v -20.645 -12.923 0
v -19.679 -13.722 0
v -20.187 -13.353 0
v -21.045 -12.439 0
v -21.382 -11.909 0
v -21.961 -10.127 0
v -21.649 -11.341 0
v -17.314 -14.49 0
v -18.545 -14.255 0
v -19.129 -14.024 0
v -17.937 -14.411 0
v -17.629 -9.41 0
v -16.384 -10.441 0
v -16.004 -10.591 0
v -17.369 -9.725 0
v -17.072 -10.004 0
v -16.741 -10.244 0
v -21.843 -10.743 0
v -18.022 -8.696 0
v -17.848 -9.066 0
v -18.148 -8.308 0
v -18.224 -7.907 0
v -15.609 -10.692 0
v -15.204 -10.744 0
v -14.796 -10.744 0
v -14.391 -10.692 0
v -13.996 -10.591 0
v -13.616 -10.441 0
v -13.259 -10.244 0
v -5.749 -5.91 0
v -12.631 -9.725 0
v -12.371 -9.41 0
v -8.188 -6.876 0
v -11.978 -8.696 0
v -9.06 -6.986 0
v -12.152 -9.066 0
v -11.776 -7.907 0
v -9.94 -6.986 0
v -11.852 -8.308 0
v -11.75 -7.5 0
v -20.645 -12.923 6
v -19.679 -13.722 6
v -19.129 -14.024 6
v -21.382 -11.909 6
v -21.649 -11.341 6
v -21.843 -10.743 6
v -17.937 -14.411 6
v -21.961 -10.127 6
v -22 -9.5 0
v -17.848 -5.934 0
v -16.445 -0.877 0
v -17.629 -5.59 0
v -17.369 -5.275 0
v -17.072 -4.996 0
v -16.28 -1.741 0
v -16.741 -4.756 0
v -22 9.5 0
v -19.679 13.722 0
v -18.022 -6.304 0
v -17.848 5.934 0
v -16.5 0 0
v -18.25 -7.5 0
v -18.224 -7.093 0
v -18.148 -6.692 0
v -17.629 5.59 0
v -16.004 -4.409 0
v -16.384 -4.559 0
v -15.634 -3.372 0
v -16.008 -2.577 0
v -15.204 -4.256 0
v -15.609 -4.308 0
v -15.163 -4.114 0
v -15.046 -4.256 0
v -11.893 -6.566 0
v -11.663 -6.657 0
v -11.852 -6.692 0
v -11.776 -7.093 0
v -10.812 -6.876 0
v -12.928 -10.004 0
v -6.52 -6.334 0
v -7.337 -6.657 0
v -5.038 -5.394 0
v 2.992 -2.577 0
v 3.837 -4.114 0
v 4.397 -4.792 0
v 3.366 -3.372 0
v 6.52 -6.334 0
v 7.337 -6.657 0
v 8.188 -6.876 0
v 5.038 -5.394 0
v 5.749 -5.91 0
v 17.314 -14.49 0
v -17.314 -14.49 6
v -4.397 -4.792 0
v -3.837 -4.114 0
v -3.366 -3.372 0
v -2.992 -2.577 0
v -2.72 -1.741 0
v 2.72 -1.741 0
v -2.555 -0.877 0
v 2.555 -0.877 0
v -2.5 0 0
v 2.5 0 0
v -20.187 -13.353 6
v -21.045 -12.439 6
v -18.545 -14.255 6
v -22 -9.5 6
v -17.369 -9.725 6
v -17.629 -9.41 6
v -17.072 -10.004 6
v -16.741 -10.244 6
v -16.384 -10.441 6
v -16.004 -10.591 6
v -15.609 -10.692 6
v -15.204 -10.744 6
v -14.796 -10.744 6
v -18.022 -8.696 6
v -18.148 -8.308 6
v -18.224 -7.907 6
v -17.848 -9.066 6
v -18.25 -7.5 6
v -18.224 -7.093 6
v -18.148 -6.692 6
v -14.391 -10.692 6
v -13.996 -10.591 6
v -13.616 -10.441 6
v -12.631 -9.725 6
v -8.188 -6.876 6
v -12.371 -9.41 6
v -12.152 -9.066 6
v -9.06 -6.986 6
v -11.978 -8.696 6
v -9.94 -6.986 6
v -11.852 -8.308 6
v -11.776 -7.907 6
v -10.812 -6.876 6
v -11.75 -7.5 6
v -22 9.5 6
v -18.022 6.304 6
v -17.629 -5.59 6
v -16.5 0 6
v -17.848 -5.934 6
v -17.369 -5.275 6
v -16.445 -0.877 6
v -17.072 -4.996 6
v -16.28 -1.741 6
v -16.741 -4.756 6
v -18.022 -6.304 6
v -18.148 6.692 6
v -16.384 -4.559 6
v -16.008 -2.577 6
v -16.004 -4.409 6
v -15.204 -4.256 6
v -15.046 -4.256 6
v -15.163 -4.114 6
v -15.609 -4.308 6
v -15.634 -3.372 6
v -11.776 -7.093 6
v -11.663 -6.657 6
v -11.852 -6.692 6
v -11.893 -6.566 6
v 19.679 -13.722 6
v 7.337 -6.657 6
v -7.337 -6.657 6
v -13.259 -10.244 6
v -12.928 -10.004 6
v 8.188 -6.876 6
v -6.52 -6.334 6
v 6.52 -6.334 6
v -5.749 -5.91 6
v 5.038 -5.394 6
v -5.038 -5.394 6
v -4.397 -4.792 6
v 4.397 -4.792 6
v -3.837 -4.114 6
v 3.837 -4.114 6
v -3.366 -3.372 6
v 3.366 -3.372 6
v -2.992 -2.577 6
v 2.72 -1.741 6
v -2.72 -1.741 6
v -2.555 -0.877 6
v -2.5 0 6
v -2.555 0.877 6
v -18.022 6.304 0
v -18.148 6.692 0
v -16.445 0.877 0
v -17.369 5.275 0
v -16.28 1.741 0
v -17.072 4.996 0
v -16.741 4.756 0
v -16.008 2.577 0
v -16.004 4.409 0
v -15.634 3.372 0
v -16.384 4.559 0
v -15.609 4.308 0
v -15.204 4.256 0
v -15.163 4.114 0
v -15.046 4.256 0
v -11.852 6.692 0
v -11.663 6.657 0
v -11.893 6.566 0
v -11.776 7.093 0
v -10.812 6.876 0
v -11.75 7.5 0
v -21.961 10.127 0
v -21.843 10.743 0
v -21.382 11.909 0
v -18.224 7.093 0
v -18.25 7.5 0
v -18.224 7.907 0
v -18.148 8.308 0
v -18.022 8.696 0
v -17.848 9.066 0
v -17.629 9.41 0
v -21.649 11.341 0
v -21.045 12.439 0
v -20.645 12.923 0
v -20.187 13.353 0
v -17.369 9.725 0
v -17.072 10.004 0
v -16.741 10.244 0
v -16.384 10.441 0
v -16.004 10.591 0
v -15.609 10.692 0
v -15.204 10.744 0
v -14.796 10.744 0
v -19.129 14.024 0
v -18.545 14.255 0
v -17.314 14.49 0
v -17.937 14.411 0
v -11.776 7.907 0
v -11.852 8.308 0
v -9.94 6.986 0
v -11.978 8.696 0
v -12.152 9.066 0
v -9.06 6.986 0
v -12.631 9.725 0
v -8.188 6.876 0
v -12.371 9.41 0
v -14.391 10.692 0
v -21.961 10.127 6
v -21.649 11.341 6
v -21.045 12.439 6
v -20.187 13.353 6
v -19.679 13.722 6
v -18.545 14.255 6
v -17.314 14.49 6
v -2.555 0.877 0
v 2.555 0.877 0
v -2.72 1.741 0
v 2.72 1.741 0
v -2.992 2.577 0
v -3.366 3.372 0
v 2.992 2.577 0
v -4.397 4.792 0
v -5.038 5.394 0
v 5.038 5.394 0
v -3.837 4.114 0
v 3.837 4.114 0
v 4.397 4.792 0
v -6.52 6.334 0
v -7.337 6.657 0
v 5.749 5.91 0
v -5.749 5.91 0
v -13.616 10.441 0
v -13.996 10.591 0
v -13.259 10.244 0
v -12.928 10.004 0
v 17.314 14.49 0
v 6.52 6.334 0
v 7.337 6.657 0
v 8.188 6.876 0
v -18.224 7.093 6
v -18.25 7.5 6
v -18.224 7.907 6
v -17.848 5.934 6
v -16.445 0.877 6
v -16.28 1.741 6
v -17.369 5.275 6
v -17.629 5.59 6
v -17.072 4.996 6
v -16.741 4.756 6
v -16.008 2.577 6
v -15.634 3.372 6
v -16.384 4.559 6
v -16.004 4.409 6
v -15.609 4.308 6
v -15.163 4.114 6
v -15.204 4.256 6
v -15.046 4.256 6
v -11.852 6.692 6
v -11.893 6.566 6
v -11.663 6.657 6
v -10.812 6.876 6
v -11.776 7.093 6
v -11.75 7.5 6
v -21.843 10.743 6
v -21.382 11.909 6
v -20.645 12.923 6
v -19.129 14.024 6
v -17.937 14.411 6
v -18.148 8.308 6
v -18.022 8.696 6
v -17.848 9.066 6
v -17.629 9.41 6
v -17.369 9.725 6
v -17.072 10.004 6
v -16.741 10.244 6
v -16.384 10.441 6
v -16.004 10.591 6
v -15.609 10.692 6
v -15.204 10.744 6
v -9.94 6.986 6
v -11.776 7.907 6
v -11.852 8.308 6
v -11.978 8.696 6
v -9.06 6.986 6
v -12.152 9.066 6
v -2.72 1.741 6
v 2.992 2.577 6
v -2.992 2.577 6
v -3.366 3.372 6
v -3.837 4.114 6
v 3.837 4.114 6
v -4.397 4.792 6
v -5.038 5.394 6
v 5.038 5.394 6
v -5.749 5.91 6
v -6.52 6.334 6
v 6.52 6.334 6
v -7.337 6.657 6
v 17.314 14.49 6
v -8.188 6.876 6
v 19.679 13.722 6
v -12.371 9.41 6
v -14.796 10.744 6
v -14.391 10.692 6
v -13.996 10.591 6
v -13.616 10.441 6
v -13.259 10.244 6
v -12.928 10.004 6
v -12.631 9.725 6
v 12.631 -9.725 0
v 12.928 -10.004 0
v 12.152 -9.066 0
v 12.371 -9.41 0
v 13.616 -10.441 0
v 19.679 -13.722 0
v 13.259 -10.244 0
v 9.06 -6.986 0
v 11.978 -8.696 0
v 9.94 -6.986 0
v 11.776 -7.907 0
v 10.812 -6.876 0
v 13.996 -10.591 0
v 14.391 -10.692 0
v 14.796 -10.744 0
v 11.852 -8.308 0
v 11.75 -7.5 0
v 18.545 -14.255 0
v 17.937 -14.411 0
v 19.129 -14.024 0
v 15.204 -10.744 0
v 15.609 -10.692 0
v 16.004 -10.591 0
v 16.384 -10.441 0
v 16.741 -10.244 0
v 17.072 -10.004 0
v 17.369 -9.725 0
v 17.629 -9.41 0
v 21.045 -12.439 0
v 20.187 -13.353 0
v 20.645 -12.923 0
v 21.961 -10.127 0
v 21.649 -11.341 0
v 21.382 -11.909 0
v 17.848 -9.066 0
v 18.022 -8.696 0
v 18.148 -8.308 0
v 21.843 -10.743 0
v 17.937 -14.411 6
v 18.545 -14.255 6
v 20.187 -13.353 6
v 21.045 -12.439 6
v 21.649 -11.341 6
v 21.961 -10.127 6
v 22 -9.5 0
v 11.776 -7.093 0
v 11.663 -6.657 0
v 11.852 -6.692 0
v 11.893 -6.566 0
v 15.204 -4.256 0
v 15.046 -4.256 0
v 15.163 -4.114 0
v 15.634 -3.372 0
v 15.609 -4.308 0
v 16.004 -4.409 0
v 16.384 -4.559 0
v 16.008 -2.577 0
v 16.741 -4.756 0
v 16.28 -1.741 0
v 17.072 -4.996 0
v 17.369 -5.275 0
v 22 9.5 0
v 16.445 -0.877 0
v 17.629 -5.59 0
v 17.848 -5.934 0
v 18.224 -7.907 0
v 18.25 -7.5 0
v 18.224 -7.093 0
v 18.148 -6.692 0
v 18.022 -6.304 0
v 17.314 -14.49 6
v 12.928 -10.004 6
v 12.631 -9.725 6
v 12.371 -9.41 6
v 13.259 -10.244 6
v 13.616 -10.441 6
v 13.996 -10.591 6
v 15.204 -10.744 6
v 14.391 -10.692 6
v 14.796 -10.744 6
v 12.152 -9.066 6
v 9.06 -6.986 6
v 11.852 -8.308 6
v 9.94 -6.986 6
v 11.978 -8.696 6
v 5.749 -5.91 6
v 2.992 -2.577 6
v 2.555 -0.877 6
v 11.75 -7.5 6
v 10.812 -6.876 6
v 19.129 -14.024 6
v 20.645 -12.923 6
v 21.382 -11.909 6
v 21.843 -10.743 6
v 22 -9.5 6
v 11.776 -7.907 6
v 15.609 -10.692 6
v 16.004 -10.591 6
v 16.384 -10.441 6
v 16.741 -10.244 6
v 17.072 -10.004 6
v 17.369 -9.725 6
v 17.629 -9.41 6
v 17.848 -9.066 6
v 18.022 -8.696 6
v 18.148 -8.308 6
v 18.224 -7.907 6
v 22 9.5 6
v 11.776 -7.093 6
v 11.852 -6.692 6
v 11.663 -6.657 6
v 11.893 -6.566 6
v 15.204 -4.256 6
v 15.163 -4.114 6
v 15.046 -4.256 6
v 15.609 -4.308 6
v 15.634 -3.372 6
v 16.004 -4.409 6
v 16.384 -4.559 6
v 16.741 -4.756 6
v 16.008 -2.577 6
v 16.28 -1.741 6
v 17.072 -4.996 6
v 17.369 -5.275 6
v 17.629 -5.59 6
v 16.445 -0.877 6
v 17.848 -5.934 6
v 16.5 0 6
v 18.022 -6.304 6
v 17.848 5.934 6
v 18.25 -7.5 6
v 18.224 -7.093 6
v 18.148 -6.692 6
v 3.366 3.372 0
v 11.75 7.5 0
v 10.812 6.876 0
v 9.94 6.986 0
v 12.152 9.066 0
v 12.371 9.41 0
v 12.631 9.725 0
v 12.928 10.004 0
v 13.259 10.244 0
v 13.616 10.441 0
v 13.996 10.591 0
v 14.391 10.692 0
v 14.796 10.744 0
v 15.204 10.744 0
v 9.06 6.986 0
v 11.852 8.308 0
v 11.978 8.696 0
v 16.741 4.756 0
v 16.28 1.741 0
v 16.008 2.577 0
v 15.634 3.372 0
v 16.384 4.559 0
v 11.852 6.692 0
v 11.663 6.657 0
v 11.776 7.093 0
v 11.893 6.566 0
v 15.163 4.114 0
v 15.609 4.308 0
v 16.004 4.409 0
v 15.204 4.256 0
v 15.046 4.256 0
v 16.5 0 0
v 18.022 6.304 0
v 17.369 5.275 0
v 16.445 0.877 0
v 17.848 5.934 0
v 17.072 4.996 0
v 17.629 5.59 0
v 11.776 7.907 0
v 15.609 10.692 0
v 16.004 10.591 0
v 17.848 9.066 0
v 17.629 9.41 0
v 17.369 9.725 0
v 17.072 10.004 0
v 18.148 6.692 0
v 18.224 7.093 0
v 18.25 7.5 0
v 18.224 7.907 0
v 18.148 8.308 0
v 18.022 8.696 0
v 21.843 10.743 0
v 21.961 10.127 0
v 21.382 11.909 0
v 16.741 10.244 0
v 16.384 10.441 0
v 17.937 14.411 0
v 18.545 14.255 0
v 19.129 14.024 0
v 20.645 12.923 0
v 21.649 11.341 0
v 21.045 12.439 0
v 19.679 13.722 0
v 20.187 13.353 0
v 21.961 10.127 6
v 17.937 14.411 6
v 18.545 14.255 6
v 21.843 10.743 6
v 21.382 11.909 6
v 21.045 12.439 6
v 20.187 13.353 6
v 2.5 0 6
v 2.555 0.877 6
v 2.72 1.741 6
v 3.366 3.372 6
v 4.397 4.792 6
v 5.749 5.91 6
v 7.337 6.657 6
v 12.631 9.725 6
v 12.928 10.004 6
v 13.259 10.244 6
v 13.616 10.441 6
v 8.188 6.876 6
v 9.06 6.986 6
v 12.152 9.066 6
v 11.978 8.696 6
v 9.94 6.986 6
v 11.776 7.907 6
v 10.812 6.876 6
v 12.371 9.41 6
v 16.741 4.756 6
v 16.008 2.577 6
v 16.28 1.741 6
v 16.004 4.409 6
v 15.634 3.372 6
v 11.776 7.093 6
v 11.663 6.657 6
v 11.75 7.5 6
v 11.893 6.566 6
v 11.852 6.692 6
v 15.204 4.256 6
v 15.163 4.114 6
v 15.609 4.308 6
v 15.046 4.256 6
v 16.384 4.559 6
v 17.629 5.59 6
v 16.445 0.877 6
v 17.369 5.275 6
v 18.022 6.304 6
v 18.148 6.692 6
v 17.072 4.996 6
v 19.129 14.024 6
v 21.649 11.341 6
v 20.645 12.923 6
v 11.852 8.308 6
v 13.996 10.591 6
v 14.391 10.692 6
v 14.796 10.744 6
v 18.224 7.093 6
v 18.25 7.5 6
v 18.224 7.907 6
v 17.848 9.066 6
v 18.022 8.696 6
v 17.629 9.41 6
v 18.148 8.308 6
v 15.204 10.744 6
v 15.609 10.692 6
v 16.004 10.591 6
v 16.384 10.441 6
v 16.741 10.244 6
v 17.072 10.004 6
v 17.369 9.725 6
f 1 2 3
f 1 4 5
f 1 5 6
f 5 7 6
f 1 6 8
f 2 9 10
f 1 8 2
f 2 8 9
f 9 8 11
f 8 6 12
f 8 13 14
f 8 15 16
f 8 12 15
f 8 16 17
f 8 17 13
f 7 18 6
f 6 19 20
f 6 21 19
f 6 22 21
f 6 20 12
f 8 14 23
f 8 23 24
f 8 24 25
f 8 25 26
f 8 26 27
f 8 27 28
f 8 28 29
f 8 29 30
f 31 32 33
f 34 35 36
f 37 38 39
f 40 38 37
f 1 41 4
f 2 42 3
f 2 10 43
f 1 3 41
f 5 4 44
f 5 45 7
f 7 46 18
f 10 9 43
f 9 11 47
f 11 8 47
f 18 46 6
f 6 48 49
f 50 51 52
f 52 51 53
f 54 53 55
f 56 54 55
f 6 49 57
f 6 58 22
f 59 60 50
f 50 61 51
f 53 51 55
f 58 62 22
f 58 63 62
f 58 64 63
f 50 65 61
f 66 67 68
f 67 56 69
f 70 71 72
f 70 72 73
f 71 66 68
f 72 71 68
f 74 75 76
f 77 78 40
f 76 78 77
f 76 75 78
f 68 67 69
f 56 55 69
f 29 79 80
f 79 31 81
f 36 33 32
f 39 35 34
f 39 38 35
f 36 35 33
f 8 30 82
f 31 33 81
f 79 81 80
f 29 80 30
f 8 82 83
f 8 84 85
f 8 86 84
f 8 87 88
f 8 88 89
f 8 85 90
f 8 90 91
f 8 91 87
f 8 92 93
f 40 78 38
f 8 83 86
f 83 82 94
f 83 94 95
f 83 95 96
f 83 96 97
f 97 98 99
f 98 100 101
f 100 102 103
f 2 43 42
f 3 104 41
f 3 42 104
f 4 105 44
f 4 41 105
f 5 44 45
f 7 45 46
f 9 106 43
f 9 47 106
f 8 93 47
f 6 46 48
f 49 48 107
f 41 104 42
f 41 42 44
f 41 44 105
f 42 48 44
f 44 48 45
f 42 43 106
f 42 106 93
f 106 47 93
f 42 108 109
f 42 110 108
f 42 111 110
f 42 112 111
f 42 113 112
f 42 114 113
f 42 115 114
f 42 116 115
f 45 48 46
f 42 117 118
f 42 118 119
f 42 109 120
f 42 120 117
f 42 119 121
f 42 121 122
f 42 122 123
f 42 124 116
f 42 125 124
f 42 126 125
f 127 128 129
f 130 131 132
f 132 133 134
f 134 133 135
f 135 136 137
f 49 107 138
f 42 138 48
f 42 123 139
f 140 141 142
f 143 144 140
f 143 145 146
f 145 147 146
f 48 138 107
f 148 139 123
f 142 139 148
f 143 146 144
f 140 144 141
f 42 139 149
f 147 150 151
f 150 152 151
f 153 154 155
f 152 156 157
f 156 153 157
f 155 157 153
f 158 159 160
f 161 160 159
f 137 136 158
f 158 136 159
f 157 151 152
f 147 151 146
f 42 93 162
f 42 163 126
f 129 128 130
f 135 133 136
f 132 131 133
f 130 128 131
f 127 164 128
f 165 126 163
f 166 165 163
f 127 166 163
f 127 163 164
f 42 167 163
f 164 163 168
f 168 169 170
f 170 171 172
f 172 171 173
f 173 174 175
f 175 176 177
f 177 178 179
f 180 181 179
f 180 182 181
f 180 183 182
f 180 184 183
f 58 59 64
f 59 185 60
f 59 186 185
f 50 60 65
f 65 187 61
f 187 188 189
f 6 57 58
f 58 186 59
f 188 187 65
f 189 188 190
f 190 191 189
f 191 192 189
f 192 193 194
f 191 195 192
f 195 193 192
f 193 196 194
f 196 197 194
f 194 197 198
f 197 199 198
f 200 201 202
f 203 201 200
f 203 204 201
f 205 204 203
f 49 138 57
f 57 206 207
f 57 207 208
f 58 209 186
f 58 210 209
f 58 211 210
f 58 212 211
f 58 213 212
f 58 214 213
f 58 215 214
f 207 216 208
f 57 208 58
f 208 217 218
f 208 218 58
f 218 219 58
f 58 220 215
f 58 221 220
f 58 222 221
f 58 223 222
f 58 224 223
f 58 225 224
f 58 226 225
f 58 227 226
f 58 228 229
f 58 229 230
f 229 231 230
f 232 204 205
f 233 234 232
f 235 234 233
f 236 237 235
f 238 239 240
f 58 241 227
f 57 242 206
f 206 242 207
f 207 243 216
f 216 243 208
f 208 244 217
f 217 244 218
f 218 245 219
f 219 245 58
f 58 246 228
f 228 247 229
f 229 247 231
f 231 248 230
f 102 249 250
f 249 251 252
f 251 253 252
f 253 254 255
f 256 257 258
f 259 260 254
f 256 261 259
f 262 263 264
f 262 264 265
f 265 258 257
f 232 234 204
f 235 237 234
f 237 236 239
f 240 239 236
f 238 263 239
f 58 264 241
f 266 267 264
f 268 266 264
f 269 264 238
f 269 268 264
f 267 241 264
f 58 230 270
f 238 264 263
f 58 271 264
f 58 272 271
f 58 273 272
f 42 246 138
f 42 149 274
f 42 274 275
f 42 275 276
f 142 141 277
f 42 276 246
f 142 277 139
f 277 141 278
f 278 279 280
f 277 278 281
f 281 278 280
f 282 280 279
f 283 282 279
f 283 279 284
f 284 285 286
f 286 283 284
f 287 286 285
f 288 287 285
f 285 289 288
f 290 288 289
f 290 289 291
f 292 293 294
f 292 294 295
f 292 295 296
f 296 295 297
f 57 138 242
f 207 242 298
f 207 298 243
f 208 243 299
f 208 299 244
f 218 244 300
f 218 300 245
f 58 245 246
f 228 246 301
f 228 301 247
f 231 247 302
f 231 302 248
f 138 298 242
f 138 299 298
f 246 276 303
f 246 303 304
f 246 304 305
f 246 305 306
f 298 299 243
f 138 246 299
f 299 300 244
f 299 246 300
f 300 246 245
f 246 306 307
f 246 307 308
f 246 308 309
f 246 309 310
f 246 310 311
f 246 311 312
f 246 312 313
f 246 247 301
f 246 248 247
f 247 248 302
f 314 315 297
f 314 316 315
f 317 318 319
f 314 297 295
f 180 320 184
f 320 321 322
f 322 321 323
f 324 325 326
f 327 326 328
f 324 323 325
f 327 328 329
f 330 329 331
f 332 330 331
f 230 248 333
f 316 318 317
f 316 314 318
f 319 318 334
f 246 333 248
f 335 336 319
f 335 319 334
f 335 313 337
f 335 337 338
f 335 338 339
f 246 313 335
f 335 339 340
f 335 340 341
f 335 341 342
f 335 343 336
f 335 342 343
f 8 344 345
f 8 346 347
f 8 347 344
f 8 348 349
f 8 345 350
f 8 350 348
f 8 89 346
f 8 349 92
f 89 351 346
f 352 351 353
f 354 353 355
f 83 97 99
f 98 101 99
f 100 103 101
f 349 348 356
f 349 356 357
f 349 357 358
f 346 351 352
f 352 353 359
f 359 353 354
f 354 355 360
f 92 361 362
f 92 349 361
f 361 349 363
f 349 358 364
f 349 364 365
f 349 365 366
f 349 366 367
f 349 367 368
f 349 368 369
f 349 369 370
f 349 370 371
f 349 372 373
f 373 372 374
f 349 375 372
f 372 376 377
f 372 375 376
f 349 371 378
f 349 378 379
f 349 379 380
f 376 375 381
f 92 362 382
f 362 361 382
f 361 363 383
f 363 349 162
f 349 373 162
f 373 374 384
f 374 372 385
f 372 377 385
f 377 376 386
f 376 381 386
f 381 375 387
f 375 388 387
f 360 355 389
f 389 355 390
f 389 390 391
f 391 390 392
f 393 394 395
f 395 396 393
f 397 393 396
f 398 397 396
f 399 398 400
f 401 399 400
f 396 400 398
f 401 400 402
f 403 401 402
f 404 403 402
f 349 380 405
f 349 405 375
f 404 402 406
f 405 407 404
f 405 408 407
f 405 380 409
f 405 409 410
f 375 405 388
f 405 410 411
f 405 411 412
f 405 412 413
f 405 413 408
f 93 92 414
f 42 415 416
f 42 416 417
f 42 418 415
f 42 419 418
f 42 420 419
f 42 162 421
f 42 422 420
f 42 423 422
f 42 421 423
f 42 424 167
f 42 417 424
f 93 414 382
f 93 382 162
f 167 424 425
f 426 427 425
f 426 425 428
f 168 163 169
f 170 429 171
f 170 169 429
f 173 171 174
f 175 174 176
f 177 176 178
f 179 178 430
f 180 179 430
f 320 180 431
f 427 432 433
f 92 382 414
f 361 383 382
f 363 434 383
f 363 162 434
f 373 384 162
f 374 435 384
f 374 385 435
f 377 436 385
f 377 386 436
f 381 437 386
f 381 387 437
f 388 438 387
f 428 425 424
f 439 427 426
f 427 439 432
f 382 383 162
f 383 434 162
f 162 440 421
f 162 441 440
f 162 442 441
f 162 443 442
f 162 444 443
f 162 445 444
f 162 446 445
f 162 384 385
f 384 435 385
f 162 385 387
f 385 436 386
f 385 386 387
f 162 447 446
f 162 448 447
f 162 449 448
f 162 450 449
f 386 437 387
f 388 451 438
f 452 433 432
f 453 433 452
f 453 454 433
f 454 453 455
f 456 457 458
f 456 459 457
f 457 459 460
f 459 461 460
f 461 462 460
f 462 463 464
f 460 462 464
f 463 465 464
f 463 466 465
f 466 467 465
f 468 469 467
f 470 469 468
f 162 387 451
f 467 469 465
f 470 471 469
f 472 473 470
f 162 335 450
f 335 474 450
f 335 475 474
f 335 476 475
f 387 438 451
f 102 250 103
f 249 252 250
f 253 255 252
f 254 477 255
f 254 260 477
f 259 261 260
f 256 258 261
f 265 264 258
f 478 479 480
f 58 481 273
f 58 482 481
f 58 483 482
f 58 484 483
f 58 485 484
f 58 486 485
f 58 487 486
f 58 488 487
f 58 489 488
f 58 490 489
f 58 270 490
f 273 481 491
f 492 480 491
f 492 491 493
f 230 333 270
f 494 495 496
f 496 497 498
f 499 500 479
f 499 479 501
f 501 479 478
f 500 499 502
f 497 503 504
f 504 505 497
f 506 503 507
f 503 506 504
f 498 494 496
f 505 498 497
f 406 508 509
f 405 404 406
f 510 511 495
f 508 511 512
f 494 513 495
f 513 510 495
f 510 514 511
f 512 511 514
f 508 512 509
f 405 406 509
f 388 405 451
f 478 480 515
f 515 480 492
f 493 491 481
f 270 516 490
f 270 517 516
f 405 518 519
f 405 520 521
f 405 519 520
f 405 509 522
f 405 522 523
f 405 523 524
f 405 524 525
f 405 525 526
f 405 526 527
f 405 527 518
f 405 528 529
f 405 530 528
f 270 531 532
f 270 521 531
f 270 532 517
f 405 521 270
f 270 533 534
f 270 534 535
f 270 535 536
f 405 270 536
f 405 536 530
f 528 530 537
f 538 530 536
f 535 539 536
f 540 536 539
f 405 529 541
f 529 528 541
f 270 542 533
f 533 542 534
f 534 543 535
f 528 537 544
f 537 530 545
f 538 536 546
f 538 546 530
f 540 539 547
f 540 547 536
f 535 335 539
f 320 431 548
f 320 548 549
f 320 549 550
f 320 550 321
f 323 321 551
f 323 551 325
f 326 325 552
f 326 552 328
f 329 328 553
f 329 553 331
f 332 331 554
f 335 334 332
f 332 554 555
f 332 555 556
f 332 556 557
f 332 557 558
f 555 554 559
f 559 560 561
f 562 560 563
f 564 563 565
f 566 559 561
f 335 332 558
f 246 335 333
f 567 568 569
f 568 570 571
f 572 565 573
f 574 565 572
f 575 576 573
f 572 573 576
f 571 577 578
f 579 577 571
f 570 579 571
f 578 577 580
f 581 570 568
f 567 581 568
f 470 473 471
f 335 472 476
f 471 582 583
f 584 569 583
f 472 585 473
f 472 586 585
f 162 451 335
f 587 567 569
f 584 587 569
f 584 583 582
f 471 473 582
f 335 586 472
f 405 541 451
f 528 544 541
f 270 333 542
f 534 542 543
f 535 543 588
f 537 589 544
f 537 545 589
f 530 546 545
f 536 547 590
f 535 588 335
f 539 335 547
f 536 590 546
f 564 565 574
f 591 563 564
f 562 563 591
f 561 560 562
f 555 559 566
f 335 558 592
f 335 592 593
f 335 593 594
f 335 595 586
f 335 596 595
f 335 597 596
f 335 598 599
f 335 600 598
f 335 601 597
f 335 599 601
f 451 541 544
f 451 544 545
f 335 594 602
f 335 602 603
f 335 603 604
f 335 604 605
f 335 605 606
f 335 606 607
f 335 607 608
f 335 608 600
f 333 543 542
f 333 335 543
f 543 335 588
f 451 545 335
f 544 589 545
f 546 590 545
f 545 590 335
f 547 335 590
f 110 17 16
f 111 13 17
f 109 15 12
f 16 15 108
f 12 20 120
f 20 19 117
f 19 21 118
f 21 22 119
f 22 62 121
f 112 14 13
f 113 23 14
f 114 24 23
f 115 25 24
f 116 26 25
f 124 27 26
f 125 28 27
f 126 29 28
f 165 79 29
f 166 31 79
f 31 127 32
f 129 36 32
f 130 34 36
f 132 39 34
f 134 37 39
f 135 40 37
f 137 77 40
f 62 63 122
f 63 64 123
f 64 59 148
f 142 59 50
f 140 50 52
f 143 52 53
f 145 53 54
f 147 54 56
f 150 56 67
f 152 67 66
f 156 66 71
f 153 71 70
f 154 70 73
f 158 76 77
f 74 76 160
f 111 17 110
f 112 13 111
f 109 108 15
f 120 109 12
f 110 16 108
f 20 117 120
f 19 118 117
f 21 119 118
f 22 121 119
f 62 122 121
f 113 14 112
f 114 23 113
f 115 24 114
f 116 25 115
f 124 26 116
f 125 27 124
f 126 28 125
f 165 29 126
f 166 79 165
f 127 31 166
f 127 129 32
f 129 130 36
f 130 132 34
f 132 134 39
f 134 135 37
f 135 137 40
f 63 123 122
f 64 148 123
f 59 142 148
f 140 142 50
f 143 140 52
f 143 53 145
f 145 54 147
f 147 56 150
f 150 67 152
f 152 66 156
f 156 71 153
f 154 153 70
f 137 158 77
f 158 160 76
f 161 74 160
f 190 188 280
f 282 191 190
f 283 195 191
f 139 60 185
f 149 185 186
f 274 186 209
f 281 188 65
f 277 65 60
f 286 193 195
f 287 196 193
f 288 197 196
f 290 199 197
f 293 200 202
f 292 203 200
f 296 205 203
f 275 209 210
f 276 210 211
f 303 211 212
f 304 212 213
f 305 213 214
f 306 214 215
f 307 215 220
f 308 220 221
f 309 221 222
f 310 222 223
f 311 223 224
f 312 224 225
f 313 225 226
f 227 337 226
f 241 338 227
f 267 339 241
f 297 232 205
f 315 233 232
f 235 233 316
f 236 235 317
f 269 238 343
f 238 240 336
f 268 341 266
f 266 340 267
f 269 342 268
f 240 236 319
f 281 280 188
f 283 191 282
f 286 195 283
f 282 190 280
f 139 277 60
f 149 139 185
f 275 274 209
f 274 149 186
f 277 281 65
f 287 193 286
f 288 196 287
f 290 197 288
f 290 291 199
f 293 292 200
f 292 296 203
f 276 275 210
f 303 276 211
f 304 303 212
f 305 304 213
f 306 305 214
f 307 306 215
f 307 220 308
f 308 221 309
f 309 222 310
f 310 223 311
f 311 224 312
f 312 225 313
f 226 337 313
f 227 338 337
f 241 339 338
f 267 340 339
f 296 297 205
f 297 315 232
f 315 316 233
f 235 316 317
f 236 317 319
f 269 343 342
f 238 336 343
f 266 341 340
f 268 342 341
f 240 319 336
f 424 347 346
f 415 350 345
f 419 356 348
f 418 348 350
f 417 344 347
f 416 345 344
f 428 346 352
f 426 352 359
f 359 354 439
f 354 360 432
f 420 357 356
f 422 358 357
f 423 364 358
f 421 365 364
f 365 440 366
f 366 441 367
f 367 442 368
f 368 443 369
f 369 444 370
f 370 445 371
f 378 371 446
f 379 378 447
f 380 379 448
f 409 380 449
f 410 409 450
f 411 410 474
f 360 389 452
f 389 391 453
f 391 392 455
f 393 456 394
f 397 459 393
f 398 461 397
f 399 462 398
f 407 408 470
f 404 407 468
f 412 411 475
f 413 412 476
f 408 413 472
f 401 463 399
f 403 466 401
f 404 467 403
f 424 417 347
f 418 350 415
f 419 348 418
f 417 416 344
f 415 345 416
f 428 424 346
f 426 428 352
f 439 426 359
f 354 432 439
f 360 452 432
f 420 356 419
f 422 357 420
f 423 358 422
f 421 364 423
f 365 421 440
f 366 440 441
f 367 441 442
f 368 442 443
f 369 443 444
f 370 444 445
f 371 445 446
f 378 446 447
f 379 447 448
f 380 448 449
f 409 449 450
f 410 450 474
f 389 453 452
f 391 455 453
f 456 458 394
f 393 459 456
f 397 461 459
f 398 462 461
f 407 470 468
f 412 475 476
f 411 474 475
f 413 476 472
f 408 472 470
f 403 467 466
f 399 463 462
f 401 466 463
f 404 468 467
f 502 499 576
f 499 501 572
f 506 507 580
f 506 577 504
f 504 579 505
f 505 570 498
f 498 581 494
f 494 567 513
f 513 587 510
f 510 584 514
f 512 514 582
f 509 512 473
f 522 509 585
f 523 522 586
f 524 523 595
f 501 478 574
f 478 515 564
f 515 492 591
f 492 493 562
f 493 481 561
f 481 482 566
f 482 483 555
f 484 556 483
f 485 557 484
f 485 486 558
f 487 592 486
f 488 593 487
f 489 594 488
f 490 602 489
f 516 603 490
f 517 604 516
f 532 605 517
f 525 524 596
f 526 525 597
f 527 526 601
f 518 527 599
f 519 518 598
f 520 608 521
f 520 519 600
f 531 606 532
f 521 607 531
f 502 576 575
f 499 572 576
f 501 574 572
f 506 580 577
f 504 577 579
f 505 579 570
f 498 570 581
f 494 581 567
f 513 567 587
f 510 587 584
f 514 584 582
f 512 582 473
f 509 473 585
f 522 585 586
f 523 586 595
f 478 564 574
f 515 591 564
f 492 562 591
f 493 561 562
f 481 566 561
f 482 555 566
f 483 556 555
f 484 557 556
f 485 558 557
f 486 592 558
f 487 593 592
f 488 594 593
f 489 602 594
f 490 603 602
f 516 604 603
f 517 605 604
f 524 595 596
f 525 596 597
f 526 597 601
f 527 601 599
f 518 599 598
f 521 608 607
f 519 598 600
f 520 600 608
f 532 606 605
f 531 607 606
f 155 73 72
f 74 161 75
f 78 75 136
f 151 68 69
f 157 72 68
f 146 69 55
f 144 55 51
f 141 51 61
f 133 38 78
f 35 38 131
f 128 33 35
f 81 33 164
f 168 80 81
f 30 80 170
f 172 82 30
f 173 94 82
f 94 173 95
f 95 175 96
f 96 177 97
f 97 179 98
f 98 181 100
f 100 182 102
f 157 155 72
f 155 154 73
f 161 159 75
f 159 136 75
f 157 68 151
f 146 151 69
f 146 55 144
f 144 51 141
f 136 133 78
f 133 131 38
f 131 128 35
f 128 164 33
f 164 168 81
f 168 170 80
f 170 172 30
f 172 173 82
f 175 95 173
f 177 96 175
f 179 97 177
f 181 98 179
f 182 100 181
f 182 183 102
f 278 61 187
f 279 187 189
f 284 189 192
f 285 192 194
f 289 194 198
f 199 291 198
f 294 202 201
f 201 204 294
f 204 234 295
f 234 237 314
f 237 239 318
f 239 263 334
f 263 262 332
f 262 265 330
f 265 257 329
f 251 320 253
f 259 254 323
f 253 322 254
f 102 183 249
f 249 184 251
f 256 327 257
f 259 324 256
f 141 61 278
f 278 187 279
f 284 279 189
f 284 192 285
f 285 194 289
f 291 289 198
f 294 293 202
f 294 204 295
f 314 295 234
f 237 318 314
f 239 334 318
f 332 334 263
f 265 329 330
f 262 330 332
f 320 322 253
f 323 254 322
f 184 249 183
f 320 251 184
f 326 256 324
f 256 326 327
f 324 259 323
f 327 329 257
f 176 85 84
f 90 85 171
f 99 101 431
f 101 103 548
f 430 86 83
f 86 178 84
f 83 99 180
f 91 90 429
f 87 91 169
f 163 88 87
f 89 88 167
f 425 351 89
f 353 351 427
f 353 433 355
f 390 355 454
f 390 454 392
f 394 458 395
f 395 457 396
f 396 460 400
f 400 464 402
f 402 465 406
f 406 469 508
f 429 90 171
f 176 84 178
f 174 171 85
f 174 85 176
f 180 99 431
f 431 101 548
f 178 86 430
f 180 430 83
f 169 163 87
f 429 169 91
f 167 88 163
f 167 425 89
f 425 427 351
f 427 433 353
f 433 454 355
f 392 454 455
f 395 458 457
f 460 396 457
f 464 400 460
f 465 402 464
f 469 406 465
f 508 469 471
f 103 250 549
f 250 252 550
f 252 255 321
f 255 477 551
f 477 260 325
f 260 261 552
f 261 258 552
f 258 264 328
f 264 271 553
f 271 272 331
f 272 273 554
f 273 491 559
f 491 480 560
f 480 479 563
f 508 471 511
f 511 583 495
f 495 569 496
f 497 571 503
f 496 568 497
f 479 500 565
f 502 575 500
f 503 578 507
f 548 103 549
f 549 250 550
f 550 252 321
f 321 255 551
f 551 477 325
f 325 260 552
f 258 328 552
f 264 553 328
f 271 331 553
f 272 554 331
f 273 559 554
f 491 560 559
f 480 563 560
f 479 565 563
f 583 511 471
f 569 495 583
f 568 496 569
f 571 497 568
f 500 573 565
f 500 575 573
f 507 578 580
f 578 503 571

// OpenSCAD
$fn = 50;

difference() {
	union() {
		hull() {
			translate(v = [-17.0, 9.5, 0]) {
				cylinder(h = 6, r = 5);
			}
			translate(v = [17.0, 9.5, 0]) {
				cylinder(h = 6, r = 5);
			}
			translate(v = [-17.0, -9.5, 0]) {
				cylinder(h = 6, r = 5);
			}
			translate(v = [17.0, -9.5, 0]) {
				cylinder(h = 6, r = 5);
			}
		}
	}
	union() {
		translate(v = [-15.0, -7.5, -100.0]) {
			cylinder(h = 200, r = 3.25);
		}
		translate(v = [-15.0, 7.5, -100.0]) {
			cylinder(h = 200, r = 3.25);
		}
		translate(v = [15.0, -7.5, -100.0]) {
			cylinder(h = 200, r = 3.25);
		}
		translate(v = [15.0, 7.5, -100.0]) {
			cylinder(h = 200, r = 3.25);
		}
		translate(v = [-15.0, -7.5, -100.0]) {
			cylinder(h = 200, r = 1.8);
		}
		translate(v = [-15.0, 7.5, -100.0]) {
			cylinder(h = 200, r = 1.8);
		}
		translate(v = [15.0, -7.5, -100.0]) {
			cylinder(h = 200, r = 1.8);
		}
		translate(v = [15.0, 7.5, -100.0]) {
			cylinder(h = 200, r = 1.8);
		}
		translate(v = [-9.5, 0, 0.0]) {
			cylinder(h = 6, r = 7.0);
		}
		translate(v = [9.5, 0, 0.0]) {
			cylinder(h = 6, r = 7.0);
		}
	}
}
